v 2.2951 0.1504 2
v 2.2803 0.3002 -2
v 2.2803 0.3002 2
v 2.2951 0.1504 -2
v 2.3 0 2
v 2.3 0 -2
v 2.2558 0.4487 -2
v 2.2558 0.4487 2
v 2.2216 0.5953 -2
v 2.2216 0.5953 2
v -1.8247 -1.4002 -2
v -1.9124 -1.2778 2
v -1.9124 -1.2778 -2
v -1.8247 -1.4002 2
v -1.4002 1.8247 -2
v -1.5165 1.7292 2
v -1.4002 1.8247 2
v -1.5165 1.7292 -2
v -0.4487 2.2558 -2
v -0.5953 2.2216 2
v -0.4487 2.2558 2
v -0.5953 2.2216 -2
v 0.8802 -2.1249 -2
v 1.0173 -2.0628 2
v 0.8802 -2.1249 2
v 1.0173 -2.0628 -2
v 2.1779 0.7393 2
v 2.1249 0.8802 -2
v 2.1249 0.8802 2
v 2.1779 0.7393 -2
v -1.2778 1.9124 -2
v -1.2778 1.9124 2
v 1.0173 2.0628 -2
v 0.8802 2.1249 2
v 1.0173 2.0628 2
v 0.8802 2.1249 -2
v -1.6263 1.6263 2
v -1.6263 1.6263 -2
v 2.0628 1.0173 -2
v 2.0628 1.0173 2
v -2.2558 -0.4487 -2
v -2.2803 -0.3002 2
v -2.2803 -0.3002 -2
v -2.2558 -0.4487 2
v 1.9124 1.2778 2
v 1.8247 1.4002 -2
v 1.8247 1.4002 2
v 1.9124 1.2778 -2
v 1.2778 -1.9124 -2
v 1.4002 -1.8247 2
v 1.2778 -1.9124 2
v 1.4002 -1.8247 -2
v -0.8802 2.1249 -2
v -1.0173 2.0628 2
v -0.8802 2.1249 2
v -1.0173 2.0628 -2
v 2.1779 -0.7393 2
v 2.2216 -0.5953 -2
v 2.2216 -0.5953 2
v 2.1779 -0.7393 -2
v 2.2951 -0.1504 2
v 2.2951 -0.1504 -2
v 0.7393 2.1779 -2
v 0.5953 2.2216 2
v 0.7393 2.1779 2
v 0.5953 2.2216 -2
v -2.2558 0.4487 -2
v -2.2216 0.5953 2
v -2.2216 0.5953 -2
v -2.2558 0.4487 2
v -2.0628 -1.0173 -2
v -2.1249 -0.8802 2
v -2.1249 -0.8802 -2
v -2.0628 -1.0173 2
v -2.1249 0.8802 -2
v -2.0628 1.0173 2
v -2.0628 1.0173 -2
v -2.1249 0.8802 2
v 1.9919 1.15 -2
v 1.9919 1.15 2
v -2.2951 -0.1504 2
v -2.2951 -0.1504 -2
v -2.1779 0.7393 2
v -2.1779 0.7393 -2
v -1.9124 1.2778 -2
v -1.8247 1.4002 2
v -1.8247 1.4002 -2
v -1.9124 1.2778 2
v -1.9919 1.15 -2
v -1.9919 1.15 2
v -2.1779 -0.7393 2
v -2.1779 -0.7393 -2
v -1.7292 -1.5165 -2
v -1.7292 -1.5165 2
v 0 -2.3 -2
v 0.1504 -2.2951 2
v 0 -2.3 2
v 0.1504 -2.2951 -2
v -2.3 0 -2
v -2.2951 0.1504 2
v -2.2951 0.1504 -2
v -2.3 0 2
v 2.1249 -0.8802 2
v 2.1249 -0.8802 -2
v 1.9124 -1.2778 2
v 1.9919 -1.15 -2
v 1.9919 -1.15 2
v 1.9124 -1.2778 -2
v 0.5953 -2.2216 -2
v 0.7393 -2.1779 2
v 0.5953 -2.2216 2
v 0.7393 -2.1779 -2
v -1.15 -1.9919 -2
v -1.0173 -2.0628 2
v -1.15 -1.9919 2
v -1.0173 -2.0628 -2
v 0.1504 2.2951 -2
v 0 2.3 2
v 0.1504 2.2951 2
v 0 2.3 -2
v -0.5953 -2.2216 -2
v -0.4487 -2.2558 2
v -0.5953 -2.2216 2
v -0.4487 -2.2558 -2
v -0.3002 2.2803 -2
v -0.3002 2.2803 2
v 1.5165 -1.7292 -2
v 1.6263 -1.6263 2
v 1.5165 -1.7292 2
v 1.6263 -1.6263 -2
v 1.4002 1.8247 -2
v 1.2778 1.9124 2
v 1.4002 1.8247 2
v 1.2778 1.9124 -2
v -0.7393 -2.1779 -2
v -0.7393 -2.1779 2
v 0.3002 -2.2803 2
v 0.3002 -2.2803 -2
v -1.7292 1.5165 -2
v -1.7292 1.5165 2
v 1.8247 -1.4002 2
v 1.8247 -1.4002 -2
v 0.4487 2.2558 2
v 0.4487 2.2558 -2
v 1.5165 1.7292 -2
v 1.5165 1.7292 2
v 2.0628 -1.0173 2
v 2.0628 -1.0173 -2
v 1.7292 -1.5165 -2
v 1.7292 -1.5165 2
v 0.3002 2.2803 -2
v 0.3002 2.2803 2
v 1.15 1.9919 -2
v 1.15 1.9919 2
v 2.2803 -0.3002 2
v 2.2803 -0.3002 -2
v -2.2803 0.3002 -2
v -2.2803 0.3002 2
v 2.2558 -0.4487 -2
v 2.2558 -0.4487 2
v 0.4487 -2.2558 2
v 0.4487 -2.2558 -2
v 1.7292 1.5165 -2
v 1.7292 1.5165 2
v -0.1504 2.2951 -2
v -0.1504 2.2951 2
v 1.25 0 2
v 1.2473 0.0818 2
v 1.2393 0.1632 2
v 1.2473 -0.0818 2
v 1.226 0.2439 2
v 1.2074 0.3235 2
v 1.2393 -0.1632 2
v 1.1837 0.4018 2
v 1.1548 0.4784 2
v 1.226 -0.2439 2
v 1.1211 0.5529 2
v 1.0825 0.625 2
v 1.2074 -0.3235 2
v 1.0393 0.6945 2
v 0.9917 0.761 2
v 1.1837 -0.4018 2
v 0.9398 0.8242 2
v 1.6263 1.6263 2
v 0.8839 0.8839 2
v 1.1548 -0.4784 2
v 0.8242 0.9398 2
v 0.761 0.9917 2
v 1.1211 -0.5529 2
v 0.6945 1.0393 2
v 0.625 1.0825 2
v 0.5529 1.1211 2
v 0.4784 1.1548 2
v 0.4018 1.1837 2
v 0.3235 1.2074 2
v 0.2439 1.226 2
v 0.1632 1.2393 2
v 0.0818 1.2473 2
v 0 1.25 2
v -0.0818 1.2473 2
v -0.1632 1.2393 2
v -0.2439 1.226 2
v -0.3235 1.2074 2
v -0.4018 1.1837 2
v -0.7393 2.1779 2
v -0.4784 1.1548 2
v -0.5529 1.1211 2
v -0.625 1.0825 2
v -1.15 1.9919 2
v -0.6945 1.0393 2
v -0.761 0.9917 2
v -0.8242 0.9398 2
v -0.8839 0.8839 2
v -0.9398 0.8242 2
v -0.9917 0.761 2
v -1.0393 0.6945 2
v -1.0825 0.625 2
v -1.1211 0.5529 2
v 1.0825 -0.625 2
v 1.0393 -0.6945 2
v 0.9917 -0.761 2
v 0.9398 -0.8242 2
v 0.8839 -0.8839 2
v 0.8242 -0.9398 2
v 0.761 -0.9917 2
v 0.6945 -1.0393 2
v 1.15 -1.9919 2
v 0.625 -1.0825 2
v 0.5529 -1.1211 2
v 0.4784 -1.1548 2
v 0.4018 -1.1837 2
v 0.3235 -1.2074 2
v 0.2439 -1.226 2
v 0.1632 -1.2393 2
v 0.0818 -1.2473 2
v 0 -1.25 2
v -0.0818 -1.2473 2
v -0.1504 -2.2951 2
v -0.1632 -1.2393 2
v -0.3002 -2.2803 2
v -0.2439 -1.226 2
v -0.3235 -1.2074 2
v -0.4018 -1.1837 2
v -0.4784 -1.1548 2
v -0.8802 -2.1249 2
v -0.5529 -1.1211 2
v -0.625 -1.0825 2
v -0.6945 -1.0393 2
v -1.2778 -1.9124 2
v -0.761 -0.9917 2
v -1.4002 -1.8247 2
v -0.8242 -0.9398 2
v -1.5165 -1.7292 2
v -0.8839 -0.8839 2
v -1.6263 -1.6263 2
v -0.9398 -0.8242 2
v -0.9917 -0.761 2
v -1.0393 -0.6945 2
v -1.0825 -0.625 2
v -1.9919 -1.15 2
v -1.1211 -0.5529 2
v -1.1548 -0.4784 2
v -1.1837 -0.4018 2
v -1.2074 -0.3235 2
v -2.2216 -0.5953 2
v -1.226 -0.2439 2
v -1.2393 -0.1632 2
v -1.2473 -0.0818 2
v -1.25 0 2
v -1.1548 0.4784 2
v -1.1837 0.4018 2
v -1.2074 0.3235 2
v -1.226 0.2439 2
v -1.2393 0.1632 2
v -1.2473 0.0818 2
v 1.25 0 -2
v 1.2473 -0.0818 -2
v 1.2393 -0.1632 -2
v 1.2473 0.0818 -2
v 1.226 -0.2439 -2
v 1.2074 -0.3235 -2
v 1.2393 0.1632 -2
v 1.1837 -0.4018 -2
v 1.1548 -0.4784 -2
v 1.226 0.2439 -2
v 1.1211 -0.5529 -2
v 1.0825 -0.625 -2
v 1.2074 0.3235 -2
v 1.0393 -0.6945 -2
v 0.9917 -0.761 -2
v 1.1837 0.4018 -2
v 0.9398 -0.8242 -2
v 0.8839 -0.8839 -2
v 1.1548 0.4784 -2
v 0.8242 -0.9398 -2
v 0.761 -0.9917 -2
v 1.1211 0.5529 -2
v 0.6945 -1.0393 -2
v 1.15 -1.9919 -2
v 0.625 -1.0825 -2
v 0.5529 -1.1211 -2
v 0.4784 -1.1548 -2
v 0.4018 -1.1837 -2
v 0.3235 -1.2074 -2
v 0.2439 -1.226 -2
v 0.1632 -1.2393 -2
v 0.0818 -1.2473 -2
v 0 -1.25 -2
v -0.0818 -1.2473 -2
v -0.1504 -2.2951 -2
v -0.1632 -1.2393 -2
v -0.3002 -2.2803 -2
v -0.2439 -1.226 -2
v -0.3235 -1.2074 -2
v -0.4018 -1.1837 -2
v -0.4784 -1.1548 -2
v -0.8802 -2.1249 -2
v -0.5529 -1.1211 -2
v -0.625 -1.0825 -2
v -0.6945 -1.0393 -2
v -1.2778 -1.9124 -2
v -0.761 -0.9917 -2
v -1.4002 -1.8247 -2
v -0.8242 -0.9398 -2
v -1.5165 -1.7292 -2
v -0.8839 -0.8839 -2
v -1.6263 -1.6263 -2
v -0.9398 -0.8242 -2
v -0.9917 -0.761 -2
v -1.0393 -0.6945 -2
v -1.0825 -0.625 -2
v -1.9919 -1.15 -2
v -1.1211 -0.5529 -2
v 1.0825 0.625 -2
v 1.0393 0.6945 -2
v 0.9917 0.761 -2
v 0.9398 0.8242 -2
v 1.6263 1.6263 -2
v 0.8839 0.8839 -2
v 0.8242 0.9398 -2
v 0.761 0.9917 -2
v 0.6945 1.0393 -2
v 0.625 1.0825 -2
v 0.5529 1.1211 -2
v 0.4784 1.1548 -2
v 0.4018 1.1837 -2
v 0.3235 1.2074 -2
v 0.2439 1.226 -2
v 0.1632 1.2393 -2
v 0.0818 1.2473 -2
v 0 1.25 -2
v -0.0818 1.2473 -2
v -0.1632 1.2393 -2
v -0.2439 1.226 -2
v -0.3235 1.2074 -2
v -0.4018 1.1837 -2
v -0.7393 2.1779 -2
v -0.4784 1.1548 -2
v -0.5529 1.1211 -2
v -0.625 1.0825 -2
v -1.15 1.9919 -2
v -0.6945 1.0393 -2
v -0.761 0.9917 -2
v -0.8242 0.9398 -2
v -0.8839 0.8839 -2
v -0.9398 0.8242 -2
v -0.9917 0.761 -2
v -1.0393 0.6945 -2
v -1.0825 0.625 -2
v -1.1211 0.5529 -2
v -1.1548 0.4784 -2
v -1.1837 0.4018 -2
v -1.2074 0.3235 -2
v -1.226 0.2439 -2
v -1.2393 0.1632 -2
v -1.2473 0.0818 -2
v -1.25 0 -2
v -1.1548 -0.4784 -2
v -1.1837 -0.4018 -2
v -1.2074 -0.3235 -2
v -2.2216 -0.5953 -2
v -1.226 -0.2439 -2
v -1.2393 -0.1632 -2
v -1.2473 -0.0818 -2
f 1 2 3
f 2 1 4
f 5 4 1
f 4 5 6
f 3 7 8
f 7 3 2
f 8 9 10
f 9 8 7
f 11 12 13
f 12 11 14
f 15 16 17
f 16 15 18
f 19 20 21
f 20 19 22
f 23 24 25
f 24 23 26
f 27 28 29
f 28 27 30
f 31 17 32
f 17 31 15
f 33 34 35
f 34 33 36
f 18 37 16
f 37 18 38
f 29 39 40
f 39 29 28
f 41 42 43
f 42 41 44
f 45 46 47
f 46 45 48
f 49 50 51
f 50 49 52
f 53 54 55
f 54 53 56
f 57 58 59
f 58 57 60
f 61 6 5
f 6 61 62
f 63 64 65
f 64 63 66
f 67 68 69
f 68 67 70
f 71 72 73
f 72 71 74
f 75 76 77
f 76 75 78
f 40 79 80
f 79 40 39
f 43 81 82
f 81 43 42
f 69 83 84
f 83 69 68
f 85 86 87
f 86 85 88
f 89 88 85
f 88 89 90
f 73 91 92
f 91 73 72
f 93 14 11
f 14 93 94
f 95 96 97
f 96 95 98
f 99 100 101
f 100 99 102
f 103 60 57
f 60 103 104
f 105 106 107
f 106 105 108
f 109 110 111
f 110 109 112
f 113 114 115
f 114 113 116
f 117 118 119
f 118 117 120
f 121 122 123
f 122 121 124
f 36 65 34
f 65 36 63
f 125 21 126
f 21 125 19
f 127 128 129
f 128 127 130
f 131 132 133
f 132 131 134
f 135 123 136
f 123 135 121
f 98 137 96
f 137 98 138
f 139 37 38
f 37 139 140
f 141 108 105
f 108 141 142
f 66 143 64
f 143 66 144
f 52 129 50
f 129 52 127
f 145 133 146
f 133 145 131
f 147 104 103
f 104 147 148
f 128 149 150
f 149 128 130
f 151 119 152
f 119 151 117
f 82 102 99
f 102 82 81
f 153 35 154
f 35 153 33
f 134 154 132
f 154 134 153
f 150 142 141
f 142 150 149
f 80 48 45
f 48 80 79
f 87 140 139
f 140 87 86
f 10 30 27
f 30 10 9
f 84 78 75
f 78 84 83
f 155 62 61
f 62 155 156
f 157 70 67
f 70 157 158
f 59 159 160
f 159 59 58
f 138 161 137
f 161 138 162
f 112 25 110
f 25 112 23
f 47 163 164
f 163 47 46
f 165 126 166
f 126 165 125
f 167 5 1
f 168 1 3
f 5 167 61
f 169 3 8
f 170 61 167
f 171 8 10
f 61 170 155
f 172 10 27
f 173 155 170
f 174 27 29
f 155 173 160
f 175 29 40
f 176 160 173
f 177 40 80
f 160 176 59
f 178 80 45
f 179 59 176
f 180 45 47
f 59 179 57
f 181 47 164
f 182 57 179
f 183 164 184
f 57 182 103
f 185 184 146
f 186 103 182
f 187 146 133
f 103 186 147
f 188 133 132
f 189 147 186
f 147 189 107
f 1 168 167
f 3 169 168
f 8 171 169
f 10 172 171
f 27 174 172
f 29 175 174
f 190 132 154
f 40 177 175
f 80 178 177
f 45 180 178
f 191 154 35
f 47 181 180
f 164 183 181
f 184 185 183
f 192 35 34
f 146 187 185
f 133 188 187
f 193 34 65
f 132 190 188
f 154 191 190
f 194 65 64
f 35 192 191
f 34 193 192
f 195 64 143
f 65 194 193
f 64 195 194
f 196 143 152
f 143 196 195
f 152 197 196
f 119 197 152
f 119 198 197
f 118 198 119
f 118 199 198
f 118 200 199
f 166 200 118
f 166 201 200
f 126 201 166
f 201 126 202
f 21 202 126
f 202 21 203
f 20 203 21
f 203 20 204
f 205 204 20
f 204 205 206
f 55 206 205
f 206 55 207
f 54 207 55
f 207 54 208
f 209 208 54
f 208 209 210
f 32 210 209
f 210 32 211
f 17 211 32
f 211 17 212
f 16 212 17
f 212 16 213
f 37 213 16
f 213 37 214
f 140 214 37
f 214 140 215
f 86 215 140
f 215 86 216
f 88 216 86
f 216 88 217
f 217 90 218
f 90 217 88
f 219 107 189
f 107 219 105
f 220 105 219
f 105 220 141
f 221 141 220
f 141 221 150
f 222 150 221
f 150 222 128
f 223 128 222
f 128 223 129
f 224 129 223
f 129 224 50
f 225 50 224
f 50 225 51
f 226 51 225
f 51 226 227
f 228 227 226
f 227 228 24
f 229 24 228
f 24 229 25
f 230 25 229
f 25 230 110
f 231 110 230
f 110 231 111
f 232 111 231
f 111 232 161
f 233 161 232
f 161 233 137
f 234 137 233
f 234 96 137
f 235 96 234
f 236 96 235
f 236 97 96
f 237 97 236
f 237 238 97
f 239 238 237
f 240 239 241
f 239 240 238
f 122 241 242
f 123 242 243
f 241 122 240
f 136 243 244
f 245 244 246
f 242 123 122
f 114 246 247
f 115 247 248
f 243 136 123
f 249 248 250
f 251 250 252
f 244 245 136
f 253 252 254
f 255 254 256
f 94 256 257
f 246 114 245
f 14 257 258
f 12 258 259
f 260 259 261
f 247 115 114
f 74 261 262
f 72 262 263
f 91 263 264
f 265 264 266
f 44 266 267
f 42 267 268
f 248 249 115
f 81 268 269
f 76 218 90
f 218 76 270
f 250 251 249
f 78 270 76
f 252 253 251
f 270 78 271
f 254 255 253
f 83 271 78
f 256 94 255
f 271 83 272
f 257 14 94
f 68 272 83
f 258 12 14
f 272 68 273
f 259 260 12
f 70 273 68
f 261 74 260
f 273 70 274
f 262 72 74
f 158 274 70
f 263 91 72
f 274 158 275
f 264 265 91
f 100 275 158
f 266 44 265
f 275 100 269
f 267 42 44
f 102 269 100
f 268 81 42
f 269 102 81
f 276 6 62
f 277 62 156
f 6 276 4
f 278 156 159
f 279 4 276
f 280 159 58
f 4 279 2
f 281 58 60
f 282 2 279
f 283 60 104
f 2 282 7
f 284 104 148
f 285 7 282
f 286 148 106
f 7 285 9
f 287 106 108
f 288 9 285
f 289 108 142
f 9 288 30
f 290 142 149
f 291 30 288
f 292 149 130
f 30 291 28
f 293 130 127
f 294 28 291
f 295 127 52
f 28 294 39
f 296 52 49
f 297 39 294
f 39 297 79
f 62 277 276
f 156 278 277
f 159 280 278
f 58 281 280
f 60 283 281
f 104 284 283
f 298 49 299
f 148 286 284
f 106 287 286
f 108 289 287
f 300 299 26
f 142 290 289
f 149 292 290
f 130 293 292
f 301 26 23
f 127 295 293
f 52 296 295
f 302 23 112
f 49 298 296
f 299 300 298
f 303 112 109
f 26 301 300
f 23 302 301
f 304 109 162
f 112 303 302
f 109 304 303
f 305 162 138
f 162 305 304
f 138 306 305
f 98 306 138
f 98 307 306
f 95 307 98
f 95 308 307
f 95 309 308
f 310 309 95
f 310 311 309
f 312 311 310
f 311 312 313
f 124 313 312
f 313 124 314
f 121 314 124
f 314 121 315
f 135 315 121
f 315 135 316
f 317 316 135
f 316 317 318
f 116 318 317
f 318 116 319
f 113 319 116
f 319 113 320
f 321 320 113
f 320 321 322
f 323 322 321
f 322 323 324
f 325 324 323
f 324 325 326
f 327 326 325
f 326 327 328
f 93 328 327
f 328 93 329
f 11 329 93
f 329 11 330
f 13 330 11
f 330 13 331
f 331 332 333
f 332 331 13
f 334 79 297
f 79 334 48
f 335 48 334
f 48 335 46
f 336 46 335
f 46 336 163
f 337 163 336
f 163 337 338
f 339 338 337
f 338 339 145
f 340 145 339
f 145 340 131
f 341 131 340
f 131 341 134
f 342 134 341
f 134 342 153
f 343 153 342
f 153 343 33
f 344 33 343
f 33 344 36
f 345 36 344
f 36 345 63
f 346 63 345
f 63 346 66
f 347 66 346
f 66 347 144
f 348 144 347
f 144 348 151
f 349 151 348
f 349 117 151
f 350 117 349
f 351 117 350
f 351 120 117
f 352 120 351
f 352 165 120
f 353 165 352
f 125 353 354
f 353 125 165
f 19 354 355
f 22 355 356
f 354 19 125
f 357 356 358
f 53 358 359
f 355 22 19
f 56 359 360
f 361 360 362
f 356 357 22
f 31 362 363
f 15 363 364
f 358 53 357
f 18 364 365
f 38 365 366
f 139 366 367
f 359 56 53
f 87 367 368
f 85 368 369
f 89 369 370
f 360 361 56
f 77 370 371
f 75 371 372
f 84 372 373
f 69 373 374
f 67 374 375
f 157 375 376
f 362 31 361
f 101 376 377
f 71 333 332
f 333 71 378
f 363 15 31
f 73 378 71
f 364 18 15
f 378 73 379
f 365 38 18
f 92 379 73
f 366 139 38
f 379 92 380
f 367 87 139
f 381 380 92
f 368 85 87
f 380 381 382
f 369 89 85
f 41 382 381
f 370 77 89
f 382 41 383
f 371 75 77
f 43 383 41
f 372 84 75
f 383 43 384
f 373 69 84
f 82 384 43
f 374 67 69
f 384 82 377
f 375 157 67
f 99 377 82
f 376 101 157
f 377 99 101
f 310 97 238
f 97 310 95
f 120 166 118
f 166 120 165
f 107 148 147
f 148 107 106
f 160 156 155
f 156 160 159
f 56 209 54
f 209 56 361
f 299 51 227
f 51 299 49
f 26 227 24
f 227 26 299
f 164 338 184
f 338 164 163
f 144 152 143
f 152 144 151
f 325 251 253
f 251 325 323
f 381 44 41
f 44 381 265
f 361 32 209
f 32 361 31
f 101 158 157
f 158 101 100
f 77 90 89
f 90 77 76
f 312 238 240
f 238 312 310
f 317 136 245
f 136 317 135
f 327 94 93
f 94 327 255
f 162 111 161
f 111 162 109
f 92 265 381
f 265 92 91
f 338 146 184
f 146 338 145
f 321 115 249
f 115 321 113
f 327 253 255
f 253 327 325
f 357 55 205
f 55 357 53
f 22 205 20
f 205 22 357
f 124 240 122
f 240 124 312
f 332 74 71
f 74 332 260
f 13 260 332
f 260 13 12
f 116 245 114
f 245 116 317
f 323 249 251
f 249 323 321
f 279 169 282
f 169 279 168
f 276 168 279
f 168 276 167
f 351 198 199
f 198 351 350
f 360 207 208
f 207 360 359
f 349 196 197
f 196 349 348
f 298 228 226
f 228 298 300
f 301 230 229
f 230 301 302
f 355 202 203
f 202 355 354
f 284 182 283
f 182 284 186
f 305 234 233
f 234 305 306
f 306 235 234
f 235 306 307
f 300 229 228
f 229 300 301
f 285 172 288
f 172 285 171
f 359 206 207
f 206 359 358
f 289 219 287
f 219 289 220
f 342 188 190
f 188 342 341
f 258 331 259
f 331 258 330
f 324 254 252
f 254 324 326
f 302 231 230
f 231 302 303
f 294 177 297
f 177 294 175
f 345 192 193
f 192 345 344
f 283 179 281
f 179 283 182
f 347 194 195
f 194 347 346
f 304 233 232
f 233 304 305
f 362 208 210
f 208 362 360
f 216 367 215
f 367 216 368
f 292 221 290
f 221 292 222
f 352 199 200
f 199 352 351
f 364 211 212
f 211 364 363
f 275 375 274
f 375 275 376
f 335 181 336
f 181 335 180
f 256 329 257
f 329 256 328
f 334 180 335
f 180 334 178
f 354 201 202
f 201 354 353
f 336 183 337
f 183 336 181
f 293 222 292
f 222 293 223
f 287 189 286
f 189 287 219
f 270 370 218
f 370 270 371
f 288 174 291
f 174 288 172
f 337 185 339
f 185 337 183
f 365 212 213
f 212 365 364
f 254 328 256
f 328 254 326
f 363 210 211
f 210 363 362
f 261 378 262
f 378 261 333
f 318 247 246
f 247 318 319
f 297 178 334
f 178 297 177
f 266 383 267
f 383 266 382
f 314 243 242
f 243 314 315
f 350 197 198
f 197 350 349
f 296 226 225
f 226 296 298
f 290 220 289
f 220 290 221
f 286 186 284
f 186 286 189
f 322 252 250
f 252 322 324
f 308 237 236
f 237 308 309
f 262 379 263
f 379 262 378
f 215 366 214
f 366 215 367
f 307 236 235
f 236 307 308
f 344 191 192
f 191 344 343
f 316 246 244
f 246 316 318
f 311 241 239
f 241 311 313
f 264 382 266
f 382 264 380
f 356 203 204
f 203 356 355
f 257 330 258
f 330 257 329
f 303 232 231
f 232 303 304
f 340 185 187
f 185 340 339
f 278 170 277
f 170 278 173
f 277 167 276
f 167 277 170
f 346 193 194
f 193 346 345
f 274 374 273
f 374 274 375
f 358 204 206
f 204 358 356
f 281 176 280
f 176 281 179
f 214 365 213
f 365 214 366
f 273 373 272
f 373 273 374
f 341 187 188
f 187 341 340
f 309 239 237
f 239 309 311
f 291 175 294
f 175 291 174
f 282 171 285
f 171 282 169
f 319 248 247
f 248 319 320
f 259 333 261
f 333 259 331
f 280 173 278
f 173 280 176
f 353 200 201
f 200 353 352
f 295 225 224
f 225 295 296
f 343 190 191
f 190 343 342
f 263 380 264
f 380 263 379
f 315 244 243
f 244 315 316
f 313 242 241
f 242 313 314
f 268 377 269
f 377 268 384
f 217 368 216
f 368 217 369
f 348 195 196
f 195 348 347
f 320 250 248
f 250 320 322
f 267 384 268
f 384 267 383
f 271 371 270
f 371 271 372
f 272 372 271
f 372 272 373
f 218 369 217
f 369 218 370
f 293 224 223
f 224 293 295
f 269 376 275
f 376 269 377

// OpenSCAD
$fn = 96;

module heat_set_insert(thread_bore_d=2.5, outer_d=4.6, len=4) {
    difference() {
        cylinder(d=outer_d, h=len, center=true);
        cylinder(d=thread_bore_d, h=len+0.4, center=true);
    }
}

heat_set_insert();
